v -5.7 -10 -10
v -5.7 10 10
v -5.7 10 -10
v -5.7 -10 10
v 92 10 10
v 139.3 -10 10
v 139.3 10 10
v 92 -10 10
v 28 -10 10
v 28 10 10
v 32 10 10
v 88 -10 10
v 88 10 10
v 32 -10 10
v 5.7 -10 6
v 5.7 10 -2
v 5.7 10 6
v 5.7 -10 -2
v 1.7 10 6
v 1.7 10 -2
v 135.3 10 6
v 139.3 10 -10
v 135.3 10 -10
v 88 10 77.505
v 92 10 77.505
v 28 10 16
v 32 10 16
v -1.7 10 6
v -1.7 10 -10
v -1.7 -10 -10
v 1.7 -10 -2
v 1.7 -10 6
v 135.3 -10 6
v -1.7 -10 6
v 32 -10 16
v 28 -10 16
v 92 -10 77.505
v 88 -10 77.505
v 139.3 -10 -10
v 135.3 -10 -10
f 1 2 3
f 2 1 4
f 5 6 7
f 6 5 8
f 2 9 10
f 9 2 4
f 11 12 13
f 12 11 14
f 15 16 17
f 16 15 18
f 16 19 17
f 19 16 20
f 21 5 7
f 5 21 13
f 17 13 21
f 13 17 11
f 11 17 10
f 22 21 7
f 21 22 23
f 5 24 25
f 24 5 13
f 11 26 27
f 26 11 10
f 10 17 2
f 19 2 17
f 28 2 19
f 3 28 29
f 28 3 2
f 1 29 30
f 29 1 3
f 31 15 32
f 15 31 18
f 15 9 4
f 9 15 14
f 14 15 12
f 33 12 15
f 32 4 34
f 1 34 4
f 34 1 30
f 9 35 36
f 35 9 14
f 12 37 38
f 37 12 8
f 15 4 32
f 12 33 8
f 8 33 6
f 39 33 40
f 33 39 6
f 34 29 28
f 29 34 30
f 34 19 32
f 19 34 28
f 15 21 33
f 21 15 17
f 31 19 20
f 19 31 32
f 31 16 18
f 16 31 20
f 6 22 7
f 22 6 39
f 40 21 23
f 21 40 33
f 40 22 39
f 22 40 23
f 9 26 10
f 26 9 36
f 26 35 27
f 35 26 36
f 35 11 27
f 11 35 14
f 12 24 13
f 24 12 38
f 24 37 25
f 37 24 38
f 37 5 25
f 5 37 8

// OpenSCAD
$fn = 30;

wall_with = 3.4;
thinkness = 4;

highet = 20;
width = 20;
cut_highet = 8;

base_width = 145;

stand_shift = 30;
stand_low = 10;
stand_length = 60;
angle = 50;
stand_high = stand_length * tan(angle);

echo ("stand_high = ", stand_high);




difference() {
    color ("green") cube([wall_with+thinkness*2,width,highet], center=true);
    
    // The slot
    translate([0,0,-thinkness])
      cube([wall_with,width+1,highet], center = true);
      
    // cut so we can place screw
    color("red")
    translate([thinkness,0,cut_highet*.5-highet/2])
      cube([wall_with+thinkness,width+1,cut_highet], center = true);
    
 
    }
   
// the part that gaps over both sides of box 
color ("blue") 
  translate([-(wall_with+thinkness*2)/2,-width/2,-thinkness+highet/2])
    cube([base_width,width,thinkness]);

// the part that holds the stand on the other side   
translate([base_width-(wall_with+3*thinkness)/2,0,0]) 
   cube([thinkness,width,highet], center=true);
    
    
// the part that stops the tablet from moving
    // the part that holds the stand on the other side   
color("magenta")
translate([stand_shift,0,highet/2+stand_low/2-thinkness]) 
   cube([thinkness,width,stand_low], center=true);
    
translate([stand_shift+stand_length,0,highet/2+stand_high/2-thinkness]) 
   cube([thinkness,width,stand_high], center=true);
    
    
    
    
